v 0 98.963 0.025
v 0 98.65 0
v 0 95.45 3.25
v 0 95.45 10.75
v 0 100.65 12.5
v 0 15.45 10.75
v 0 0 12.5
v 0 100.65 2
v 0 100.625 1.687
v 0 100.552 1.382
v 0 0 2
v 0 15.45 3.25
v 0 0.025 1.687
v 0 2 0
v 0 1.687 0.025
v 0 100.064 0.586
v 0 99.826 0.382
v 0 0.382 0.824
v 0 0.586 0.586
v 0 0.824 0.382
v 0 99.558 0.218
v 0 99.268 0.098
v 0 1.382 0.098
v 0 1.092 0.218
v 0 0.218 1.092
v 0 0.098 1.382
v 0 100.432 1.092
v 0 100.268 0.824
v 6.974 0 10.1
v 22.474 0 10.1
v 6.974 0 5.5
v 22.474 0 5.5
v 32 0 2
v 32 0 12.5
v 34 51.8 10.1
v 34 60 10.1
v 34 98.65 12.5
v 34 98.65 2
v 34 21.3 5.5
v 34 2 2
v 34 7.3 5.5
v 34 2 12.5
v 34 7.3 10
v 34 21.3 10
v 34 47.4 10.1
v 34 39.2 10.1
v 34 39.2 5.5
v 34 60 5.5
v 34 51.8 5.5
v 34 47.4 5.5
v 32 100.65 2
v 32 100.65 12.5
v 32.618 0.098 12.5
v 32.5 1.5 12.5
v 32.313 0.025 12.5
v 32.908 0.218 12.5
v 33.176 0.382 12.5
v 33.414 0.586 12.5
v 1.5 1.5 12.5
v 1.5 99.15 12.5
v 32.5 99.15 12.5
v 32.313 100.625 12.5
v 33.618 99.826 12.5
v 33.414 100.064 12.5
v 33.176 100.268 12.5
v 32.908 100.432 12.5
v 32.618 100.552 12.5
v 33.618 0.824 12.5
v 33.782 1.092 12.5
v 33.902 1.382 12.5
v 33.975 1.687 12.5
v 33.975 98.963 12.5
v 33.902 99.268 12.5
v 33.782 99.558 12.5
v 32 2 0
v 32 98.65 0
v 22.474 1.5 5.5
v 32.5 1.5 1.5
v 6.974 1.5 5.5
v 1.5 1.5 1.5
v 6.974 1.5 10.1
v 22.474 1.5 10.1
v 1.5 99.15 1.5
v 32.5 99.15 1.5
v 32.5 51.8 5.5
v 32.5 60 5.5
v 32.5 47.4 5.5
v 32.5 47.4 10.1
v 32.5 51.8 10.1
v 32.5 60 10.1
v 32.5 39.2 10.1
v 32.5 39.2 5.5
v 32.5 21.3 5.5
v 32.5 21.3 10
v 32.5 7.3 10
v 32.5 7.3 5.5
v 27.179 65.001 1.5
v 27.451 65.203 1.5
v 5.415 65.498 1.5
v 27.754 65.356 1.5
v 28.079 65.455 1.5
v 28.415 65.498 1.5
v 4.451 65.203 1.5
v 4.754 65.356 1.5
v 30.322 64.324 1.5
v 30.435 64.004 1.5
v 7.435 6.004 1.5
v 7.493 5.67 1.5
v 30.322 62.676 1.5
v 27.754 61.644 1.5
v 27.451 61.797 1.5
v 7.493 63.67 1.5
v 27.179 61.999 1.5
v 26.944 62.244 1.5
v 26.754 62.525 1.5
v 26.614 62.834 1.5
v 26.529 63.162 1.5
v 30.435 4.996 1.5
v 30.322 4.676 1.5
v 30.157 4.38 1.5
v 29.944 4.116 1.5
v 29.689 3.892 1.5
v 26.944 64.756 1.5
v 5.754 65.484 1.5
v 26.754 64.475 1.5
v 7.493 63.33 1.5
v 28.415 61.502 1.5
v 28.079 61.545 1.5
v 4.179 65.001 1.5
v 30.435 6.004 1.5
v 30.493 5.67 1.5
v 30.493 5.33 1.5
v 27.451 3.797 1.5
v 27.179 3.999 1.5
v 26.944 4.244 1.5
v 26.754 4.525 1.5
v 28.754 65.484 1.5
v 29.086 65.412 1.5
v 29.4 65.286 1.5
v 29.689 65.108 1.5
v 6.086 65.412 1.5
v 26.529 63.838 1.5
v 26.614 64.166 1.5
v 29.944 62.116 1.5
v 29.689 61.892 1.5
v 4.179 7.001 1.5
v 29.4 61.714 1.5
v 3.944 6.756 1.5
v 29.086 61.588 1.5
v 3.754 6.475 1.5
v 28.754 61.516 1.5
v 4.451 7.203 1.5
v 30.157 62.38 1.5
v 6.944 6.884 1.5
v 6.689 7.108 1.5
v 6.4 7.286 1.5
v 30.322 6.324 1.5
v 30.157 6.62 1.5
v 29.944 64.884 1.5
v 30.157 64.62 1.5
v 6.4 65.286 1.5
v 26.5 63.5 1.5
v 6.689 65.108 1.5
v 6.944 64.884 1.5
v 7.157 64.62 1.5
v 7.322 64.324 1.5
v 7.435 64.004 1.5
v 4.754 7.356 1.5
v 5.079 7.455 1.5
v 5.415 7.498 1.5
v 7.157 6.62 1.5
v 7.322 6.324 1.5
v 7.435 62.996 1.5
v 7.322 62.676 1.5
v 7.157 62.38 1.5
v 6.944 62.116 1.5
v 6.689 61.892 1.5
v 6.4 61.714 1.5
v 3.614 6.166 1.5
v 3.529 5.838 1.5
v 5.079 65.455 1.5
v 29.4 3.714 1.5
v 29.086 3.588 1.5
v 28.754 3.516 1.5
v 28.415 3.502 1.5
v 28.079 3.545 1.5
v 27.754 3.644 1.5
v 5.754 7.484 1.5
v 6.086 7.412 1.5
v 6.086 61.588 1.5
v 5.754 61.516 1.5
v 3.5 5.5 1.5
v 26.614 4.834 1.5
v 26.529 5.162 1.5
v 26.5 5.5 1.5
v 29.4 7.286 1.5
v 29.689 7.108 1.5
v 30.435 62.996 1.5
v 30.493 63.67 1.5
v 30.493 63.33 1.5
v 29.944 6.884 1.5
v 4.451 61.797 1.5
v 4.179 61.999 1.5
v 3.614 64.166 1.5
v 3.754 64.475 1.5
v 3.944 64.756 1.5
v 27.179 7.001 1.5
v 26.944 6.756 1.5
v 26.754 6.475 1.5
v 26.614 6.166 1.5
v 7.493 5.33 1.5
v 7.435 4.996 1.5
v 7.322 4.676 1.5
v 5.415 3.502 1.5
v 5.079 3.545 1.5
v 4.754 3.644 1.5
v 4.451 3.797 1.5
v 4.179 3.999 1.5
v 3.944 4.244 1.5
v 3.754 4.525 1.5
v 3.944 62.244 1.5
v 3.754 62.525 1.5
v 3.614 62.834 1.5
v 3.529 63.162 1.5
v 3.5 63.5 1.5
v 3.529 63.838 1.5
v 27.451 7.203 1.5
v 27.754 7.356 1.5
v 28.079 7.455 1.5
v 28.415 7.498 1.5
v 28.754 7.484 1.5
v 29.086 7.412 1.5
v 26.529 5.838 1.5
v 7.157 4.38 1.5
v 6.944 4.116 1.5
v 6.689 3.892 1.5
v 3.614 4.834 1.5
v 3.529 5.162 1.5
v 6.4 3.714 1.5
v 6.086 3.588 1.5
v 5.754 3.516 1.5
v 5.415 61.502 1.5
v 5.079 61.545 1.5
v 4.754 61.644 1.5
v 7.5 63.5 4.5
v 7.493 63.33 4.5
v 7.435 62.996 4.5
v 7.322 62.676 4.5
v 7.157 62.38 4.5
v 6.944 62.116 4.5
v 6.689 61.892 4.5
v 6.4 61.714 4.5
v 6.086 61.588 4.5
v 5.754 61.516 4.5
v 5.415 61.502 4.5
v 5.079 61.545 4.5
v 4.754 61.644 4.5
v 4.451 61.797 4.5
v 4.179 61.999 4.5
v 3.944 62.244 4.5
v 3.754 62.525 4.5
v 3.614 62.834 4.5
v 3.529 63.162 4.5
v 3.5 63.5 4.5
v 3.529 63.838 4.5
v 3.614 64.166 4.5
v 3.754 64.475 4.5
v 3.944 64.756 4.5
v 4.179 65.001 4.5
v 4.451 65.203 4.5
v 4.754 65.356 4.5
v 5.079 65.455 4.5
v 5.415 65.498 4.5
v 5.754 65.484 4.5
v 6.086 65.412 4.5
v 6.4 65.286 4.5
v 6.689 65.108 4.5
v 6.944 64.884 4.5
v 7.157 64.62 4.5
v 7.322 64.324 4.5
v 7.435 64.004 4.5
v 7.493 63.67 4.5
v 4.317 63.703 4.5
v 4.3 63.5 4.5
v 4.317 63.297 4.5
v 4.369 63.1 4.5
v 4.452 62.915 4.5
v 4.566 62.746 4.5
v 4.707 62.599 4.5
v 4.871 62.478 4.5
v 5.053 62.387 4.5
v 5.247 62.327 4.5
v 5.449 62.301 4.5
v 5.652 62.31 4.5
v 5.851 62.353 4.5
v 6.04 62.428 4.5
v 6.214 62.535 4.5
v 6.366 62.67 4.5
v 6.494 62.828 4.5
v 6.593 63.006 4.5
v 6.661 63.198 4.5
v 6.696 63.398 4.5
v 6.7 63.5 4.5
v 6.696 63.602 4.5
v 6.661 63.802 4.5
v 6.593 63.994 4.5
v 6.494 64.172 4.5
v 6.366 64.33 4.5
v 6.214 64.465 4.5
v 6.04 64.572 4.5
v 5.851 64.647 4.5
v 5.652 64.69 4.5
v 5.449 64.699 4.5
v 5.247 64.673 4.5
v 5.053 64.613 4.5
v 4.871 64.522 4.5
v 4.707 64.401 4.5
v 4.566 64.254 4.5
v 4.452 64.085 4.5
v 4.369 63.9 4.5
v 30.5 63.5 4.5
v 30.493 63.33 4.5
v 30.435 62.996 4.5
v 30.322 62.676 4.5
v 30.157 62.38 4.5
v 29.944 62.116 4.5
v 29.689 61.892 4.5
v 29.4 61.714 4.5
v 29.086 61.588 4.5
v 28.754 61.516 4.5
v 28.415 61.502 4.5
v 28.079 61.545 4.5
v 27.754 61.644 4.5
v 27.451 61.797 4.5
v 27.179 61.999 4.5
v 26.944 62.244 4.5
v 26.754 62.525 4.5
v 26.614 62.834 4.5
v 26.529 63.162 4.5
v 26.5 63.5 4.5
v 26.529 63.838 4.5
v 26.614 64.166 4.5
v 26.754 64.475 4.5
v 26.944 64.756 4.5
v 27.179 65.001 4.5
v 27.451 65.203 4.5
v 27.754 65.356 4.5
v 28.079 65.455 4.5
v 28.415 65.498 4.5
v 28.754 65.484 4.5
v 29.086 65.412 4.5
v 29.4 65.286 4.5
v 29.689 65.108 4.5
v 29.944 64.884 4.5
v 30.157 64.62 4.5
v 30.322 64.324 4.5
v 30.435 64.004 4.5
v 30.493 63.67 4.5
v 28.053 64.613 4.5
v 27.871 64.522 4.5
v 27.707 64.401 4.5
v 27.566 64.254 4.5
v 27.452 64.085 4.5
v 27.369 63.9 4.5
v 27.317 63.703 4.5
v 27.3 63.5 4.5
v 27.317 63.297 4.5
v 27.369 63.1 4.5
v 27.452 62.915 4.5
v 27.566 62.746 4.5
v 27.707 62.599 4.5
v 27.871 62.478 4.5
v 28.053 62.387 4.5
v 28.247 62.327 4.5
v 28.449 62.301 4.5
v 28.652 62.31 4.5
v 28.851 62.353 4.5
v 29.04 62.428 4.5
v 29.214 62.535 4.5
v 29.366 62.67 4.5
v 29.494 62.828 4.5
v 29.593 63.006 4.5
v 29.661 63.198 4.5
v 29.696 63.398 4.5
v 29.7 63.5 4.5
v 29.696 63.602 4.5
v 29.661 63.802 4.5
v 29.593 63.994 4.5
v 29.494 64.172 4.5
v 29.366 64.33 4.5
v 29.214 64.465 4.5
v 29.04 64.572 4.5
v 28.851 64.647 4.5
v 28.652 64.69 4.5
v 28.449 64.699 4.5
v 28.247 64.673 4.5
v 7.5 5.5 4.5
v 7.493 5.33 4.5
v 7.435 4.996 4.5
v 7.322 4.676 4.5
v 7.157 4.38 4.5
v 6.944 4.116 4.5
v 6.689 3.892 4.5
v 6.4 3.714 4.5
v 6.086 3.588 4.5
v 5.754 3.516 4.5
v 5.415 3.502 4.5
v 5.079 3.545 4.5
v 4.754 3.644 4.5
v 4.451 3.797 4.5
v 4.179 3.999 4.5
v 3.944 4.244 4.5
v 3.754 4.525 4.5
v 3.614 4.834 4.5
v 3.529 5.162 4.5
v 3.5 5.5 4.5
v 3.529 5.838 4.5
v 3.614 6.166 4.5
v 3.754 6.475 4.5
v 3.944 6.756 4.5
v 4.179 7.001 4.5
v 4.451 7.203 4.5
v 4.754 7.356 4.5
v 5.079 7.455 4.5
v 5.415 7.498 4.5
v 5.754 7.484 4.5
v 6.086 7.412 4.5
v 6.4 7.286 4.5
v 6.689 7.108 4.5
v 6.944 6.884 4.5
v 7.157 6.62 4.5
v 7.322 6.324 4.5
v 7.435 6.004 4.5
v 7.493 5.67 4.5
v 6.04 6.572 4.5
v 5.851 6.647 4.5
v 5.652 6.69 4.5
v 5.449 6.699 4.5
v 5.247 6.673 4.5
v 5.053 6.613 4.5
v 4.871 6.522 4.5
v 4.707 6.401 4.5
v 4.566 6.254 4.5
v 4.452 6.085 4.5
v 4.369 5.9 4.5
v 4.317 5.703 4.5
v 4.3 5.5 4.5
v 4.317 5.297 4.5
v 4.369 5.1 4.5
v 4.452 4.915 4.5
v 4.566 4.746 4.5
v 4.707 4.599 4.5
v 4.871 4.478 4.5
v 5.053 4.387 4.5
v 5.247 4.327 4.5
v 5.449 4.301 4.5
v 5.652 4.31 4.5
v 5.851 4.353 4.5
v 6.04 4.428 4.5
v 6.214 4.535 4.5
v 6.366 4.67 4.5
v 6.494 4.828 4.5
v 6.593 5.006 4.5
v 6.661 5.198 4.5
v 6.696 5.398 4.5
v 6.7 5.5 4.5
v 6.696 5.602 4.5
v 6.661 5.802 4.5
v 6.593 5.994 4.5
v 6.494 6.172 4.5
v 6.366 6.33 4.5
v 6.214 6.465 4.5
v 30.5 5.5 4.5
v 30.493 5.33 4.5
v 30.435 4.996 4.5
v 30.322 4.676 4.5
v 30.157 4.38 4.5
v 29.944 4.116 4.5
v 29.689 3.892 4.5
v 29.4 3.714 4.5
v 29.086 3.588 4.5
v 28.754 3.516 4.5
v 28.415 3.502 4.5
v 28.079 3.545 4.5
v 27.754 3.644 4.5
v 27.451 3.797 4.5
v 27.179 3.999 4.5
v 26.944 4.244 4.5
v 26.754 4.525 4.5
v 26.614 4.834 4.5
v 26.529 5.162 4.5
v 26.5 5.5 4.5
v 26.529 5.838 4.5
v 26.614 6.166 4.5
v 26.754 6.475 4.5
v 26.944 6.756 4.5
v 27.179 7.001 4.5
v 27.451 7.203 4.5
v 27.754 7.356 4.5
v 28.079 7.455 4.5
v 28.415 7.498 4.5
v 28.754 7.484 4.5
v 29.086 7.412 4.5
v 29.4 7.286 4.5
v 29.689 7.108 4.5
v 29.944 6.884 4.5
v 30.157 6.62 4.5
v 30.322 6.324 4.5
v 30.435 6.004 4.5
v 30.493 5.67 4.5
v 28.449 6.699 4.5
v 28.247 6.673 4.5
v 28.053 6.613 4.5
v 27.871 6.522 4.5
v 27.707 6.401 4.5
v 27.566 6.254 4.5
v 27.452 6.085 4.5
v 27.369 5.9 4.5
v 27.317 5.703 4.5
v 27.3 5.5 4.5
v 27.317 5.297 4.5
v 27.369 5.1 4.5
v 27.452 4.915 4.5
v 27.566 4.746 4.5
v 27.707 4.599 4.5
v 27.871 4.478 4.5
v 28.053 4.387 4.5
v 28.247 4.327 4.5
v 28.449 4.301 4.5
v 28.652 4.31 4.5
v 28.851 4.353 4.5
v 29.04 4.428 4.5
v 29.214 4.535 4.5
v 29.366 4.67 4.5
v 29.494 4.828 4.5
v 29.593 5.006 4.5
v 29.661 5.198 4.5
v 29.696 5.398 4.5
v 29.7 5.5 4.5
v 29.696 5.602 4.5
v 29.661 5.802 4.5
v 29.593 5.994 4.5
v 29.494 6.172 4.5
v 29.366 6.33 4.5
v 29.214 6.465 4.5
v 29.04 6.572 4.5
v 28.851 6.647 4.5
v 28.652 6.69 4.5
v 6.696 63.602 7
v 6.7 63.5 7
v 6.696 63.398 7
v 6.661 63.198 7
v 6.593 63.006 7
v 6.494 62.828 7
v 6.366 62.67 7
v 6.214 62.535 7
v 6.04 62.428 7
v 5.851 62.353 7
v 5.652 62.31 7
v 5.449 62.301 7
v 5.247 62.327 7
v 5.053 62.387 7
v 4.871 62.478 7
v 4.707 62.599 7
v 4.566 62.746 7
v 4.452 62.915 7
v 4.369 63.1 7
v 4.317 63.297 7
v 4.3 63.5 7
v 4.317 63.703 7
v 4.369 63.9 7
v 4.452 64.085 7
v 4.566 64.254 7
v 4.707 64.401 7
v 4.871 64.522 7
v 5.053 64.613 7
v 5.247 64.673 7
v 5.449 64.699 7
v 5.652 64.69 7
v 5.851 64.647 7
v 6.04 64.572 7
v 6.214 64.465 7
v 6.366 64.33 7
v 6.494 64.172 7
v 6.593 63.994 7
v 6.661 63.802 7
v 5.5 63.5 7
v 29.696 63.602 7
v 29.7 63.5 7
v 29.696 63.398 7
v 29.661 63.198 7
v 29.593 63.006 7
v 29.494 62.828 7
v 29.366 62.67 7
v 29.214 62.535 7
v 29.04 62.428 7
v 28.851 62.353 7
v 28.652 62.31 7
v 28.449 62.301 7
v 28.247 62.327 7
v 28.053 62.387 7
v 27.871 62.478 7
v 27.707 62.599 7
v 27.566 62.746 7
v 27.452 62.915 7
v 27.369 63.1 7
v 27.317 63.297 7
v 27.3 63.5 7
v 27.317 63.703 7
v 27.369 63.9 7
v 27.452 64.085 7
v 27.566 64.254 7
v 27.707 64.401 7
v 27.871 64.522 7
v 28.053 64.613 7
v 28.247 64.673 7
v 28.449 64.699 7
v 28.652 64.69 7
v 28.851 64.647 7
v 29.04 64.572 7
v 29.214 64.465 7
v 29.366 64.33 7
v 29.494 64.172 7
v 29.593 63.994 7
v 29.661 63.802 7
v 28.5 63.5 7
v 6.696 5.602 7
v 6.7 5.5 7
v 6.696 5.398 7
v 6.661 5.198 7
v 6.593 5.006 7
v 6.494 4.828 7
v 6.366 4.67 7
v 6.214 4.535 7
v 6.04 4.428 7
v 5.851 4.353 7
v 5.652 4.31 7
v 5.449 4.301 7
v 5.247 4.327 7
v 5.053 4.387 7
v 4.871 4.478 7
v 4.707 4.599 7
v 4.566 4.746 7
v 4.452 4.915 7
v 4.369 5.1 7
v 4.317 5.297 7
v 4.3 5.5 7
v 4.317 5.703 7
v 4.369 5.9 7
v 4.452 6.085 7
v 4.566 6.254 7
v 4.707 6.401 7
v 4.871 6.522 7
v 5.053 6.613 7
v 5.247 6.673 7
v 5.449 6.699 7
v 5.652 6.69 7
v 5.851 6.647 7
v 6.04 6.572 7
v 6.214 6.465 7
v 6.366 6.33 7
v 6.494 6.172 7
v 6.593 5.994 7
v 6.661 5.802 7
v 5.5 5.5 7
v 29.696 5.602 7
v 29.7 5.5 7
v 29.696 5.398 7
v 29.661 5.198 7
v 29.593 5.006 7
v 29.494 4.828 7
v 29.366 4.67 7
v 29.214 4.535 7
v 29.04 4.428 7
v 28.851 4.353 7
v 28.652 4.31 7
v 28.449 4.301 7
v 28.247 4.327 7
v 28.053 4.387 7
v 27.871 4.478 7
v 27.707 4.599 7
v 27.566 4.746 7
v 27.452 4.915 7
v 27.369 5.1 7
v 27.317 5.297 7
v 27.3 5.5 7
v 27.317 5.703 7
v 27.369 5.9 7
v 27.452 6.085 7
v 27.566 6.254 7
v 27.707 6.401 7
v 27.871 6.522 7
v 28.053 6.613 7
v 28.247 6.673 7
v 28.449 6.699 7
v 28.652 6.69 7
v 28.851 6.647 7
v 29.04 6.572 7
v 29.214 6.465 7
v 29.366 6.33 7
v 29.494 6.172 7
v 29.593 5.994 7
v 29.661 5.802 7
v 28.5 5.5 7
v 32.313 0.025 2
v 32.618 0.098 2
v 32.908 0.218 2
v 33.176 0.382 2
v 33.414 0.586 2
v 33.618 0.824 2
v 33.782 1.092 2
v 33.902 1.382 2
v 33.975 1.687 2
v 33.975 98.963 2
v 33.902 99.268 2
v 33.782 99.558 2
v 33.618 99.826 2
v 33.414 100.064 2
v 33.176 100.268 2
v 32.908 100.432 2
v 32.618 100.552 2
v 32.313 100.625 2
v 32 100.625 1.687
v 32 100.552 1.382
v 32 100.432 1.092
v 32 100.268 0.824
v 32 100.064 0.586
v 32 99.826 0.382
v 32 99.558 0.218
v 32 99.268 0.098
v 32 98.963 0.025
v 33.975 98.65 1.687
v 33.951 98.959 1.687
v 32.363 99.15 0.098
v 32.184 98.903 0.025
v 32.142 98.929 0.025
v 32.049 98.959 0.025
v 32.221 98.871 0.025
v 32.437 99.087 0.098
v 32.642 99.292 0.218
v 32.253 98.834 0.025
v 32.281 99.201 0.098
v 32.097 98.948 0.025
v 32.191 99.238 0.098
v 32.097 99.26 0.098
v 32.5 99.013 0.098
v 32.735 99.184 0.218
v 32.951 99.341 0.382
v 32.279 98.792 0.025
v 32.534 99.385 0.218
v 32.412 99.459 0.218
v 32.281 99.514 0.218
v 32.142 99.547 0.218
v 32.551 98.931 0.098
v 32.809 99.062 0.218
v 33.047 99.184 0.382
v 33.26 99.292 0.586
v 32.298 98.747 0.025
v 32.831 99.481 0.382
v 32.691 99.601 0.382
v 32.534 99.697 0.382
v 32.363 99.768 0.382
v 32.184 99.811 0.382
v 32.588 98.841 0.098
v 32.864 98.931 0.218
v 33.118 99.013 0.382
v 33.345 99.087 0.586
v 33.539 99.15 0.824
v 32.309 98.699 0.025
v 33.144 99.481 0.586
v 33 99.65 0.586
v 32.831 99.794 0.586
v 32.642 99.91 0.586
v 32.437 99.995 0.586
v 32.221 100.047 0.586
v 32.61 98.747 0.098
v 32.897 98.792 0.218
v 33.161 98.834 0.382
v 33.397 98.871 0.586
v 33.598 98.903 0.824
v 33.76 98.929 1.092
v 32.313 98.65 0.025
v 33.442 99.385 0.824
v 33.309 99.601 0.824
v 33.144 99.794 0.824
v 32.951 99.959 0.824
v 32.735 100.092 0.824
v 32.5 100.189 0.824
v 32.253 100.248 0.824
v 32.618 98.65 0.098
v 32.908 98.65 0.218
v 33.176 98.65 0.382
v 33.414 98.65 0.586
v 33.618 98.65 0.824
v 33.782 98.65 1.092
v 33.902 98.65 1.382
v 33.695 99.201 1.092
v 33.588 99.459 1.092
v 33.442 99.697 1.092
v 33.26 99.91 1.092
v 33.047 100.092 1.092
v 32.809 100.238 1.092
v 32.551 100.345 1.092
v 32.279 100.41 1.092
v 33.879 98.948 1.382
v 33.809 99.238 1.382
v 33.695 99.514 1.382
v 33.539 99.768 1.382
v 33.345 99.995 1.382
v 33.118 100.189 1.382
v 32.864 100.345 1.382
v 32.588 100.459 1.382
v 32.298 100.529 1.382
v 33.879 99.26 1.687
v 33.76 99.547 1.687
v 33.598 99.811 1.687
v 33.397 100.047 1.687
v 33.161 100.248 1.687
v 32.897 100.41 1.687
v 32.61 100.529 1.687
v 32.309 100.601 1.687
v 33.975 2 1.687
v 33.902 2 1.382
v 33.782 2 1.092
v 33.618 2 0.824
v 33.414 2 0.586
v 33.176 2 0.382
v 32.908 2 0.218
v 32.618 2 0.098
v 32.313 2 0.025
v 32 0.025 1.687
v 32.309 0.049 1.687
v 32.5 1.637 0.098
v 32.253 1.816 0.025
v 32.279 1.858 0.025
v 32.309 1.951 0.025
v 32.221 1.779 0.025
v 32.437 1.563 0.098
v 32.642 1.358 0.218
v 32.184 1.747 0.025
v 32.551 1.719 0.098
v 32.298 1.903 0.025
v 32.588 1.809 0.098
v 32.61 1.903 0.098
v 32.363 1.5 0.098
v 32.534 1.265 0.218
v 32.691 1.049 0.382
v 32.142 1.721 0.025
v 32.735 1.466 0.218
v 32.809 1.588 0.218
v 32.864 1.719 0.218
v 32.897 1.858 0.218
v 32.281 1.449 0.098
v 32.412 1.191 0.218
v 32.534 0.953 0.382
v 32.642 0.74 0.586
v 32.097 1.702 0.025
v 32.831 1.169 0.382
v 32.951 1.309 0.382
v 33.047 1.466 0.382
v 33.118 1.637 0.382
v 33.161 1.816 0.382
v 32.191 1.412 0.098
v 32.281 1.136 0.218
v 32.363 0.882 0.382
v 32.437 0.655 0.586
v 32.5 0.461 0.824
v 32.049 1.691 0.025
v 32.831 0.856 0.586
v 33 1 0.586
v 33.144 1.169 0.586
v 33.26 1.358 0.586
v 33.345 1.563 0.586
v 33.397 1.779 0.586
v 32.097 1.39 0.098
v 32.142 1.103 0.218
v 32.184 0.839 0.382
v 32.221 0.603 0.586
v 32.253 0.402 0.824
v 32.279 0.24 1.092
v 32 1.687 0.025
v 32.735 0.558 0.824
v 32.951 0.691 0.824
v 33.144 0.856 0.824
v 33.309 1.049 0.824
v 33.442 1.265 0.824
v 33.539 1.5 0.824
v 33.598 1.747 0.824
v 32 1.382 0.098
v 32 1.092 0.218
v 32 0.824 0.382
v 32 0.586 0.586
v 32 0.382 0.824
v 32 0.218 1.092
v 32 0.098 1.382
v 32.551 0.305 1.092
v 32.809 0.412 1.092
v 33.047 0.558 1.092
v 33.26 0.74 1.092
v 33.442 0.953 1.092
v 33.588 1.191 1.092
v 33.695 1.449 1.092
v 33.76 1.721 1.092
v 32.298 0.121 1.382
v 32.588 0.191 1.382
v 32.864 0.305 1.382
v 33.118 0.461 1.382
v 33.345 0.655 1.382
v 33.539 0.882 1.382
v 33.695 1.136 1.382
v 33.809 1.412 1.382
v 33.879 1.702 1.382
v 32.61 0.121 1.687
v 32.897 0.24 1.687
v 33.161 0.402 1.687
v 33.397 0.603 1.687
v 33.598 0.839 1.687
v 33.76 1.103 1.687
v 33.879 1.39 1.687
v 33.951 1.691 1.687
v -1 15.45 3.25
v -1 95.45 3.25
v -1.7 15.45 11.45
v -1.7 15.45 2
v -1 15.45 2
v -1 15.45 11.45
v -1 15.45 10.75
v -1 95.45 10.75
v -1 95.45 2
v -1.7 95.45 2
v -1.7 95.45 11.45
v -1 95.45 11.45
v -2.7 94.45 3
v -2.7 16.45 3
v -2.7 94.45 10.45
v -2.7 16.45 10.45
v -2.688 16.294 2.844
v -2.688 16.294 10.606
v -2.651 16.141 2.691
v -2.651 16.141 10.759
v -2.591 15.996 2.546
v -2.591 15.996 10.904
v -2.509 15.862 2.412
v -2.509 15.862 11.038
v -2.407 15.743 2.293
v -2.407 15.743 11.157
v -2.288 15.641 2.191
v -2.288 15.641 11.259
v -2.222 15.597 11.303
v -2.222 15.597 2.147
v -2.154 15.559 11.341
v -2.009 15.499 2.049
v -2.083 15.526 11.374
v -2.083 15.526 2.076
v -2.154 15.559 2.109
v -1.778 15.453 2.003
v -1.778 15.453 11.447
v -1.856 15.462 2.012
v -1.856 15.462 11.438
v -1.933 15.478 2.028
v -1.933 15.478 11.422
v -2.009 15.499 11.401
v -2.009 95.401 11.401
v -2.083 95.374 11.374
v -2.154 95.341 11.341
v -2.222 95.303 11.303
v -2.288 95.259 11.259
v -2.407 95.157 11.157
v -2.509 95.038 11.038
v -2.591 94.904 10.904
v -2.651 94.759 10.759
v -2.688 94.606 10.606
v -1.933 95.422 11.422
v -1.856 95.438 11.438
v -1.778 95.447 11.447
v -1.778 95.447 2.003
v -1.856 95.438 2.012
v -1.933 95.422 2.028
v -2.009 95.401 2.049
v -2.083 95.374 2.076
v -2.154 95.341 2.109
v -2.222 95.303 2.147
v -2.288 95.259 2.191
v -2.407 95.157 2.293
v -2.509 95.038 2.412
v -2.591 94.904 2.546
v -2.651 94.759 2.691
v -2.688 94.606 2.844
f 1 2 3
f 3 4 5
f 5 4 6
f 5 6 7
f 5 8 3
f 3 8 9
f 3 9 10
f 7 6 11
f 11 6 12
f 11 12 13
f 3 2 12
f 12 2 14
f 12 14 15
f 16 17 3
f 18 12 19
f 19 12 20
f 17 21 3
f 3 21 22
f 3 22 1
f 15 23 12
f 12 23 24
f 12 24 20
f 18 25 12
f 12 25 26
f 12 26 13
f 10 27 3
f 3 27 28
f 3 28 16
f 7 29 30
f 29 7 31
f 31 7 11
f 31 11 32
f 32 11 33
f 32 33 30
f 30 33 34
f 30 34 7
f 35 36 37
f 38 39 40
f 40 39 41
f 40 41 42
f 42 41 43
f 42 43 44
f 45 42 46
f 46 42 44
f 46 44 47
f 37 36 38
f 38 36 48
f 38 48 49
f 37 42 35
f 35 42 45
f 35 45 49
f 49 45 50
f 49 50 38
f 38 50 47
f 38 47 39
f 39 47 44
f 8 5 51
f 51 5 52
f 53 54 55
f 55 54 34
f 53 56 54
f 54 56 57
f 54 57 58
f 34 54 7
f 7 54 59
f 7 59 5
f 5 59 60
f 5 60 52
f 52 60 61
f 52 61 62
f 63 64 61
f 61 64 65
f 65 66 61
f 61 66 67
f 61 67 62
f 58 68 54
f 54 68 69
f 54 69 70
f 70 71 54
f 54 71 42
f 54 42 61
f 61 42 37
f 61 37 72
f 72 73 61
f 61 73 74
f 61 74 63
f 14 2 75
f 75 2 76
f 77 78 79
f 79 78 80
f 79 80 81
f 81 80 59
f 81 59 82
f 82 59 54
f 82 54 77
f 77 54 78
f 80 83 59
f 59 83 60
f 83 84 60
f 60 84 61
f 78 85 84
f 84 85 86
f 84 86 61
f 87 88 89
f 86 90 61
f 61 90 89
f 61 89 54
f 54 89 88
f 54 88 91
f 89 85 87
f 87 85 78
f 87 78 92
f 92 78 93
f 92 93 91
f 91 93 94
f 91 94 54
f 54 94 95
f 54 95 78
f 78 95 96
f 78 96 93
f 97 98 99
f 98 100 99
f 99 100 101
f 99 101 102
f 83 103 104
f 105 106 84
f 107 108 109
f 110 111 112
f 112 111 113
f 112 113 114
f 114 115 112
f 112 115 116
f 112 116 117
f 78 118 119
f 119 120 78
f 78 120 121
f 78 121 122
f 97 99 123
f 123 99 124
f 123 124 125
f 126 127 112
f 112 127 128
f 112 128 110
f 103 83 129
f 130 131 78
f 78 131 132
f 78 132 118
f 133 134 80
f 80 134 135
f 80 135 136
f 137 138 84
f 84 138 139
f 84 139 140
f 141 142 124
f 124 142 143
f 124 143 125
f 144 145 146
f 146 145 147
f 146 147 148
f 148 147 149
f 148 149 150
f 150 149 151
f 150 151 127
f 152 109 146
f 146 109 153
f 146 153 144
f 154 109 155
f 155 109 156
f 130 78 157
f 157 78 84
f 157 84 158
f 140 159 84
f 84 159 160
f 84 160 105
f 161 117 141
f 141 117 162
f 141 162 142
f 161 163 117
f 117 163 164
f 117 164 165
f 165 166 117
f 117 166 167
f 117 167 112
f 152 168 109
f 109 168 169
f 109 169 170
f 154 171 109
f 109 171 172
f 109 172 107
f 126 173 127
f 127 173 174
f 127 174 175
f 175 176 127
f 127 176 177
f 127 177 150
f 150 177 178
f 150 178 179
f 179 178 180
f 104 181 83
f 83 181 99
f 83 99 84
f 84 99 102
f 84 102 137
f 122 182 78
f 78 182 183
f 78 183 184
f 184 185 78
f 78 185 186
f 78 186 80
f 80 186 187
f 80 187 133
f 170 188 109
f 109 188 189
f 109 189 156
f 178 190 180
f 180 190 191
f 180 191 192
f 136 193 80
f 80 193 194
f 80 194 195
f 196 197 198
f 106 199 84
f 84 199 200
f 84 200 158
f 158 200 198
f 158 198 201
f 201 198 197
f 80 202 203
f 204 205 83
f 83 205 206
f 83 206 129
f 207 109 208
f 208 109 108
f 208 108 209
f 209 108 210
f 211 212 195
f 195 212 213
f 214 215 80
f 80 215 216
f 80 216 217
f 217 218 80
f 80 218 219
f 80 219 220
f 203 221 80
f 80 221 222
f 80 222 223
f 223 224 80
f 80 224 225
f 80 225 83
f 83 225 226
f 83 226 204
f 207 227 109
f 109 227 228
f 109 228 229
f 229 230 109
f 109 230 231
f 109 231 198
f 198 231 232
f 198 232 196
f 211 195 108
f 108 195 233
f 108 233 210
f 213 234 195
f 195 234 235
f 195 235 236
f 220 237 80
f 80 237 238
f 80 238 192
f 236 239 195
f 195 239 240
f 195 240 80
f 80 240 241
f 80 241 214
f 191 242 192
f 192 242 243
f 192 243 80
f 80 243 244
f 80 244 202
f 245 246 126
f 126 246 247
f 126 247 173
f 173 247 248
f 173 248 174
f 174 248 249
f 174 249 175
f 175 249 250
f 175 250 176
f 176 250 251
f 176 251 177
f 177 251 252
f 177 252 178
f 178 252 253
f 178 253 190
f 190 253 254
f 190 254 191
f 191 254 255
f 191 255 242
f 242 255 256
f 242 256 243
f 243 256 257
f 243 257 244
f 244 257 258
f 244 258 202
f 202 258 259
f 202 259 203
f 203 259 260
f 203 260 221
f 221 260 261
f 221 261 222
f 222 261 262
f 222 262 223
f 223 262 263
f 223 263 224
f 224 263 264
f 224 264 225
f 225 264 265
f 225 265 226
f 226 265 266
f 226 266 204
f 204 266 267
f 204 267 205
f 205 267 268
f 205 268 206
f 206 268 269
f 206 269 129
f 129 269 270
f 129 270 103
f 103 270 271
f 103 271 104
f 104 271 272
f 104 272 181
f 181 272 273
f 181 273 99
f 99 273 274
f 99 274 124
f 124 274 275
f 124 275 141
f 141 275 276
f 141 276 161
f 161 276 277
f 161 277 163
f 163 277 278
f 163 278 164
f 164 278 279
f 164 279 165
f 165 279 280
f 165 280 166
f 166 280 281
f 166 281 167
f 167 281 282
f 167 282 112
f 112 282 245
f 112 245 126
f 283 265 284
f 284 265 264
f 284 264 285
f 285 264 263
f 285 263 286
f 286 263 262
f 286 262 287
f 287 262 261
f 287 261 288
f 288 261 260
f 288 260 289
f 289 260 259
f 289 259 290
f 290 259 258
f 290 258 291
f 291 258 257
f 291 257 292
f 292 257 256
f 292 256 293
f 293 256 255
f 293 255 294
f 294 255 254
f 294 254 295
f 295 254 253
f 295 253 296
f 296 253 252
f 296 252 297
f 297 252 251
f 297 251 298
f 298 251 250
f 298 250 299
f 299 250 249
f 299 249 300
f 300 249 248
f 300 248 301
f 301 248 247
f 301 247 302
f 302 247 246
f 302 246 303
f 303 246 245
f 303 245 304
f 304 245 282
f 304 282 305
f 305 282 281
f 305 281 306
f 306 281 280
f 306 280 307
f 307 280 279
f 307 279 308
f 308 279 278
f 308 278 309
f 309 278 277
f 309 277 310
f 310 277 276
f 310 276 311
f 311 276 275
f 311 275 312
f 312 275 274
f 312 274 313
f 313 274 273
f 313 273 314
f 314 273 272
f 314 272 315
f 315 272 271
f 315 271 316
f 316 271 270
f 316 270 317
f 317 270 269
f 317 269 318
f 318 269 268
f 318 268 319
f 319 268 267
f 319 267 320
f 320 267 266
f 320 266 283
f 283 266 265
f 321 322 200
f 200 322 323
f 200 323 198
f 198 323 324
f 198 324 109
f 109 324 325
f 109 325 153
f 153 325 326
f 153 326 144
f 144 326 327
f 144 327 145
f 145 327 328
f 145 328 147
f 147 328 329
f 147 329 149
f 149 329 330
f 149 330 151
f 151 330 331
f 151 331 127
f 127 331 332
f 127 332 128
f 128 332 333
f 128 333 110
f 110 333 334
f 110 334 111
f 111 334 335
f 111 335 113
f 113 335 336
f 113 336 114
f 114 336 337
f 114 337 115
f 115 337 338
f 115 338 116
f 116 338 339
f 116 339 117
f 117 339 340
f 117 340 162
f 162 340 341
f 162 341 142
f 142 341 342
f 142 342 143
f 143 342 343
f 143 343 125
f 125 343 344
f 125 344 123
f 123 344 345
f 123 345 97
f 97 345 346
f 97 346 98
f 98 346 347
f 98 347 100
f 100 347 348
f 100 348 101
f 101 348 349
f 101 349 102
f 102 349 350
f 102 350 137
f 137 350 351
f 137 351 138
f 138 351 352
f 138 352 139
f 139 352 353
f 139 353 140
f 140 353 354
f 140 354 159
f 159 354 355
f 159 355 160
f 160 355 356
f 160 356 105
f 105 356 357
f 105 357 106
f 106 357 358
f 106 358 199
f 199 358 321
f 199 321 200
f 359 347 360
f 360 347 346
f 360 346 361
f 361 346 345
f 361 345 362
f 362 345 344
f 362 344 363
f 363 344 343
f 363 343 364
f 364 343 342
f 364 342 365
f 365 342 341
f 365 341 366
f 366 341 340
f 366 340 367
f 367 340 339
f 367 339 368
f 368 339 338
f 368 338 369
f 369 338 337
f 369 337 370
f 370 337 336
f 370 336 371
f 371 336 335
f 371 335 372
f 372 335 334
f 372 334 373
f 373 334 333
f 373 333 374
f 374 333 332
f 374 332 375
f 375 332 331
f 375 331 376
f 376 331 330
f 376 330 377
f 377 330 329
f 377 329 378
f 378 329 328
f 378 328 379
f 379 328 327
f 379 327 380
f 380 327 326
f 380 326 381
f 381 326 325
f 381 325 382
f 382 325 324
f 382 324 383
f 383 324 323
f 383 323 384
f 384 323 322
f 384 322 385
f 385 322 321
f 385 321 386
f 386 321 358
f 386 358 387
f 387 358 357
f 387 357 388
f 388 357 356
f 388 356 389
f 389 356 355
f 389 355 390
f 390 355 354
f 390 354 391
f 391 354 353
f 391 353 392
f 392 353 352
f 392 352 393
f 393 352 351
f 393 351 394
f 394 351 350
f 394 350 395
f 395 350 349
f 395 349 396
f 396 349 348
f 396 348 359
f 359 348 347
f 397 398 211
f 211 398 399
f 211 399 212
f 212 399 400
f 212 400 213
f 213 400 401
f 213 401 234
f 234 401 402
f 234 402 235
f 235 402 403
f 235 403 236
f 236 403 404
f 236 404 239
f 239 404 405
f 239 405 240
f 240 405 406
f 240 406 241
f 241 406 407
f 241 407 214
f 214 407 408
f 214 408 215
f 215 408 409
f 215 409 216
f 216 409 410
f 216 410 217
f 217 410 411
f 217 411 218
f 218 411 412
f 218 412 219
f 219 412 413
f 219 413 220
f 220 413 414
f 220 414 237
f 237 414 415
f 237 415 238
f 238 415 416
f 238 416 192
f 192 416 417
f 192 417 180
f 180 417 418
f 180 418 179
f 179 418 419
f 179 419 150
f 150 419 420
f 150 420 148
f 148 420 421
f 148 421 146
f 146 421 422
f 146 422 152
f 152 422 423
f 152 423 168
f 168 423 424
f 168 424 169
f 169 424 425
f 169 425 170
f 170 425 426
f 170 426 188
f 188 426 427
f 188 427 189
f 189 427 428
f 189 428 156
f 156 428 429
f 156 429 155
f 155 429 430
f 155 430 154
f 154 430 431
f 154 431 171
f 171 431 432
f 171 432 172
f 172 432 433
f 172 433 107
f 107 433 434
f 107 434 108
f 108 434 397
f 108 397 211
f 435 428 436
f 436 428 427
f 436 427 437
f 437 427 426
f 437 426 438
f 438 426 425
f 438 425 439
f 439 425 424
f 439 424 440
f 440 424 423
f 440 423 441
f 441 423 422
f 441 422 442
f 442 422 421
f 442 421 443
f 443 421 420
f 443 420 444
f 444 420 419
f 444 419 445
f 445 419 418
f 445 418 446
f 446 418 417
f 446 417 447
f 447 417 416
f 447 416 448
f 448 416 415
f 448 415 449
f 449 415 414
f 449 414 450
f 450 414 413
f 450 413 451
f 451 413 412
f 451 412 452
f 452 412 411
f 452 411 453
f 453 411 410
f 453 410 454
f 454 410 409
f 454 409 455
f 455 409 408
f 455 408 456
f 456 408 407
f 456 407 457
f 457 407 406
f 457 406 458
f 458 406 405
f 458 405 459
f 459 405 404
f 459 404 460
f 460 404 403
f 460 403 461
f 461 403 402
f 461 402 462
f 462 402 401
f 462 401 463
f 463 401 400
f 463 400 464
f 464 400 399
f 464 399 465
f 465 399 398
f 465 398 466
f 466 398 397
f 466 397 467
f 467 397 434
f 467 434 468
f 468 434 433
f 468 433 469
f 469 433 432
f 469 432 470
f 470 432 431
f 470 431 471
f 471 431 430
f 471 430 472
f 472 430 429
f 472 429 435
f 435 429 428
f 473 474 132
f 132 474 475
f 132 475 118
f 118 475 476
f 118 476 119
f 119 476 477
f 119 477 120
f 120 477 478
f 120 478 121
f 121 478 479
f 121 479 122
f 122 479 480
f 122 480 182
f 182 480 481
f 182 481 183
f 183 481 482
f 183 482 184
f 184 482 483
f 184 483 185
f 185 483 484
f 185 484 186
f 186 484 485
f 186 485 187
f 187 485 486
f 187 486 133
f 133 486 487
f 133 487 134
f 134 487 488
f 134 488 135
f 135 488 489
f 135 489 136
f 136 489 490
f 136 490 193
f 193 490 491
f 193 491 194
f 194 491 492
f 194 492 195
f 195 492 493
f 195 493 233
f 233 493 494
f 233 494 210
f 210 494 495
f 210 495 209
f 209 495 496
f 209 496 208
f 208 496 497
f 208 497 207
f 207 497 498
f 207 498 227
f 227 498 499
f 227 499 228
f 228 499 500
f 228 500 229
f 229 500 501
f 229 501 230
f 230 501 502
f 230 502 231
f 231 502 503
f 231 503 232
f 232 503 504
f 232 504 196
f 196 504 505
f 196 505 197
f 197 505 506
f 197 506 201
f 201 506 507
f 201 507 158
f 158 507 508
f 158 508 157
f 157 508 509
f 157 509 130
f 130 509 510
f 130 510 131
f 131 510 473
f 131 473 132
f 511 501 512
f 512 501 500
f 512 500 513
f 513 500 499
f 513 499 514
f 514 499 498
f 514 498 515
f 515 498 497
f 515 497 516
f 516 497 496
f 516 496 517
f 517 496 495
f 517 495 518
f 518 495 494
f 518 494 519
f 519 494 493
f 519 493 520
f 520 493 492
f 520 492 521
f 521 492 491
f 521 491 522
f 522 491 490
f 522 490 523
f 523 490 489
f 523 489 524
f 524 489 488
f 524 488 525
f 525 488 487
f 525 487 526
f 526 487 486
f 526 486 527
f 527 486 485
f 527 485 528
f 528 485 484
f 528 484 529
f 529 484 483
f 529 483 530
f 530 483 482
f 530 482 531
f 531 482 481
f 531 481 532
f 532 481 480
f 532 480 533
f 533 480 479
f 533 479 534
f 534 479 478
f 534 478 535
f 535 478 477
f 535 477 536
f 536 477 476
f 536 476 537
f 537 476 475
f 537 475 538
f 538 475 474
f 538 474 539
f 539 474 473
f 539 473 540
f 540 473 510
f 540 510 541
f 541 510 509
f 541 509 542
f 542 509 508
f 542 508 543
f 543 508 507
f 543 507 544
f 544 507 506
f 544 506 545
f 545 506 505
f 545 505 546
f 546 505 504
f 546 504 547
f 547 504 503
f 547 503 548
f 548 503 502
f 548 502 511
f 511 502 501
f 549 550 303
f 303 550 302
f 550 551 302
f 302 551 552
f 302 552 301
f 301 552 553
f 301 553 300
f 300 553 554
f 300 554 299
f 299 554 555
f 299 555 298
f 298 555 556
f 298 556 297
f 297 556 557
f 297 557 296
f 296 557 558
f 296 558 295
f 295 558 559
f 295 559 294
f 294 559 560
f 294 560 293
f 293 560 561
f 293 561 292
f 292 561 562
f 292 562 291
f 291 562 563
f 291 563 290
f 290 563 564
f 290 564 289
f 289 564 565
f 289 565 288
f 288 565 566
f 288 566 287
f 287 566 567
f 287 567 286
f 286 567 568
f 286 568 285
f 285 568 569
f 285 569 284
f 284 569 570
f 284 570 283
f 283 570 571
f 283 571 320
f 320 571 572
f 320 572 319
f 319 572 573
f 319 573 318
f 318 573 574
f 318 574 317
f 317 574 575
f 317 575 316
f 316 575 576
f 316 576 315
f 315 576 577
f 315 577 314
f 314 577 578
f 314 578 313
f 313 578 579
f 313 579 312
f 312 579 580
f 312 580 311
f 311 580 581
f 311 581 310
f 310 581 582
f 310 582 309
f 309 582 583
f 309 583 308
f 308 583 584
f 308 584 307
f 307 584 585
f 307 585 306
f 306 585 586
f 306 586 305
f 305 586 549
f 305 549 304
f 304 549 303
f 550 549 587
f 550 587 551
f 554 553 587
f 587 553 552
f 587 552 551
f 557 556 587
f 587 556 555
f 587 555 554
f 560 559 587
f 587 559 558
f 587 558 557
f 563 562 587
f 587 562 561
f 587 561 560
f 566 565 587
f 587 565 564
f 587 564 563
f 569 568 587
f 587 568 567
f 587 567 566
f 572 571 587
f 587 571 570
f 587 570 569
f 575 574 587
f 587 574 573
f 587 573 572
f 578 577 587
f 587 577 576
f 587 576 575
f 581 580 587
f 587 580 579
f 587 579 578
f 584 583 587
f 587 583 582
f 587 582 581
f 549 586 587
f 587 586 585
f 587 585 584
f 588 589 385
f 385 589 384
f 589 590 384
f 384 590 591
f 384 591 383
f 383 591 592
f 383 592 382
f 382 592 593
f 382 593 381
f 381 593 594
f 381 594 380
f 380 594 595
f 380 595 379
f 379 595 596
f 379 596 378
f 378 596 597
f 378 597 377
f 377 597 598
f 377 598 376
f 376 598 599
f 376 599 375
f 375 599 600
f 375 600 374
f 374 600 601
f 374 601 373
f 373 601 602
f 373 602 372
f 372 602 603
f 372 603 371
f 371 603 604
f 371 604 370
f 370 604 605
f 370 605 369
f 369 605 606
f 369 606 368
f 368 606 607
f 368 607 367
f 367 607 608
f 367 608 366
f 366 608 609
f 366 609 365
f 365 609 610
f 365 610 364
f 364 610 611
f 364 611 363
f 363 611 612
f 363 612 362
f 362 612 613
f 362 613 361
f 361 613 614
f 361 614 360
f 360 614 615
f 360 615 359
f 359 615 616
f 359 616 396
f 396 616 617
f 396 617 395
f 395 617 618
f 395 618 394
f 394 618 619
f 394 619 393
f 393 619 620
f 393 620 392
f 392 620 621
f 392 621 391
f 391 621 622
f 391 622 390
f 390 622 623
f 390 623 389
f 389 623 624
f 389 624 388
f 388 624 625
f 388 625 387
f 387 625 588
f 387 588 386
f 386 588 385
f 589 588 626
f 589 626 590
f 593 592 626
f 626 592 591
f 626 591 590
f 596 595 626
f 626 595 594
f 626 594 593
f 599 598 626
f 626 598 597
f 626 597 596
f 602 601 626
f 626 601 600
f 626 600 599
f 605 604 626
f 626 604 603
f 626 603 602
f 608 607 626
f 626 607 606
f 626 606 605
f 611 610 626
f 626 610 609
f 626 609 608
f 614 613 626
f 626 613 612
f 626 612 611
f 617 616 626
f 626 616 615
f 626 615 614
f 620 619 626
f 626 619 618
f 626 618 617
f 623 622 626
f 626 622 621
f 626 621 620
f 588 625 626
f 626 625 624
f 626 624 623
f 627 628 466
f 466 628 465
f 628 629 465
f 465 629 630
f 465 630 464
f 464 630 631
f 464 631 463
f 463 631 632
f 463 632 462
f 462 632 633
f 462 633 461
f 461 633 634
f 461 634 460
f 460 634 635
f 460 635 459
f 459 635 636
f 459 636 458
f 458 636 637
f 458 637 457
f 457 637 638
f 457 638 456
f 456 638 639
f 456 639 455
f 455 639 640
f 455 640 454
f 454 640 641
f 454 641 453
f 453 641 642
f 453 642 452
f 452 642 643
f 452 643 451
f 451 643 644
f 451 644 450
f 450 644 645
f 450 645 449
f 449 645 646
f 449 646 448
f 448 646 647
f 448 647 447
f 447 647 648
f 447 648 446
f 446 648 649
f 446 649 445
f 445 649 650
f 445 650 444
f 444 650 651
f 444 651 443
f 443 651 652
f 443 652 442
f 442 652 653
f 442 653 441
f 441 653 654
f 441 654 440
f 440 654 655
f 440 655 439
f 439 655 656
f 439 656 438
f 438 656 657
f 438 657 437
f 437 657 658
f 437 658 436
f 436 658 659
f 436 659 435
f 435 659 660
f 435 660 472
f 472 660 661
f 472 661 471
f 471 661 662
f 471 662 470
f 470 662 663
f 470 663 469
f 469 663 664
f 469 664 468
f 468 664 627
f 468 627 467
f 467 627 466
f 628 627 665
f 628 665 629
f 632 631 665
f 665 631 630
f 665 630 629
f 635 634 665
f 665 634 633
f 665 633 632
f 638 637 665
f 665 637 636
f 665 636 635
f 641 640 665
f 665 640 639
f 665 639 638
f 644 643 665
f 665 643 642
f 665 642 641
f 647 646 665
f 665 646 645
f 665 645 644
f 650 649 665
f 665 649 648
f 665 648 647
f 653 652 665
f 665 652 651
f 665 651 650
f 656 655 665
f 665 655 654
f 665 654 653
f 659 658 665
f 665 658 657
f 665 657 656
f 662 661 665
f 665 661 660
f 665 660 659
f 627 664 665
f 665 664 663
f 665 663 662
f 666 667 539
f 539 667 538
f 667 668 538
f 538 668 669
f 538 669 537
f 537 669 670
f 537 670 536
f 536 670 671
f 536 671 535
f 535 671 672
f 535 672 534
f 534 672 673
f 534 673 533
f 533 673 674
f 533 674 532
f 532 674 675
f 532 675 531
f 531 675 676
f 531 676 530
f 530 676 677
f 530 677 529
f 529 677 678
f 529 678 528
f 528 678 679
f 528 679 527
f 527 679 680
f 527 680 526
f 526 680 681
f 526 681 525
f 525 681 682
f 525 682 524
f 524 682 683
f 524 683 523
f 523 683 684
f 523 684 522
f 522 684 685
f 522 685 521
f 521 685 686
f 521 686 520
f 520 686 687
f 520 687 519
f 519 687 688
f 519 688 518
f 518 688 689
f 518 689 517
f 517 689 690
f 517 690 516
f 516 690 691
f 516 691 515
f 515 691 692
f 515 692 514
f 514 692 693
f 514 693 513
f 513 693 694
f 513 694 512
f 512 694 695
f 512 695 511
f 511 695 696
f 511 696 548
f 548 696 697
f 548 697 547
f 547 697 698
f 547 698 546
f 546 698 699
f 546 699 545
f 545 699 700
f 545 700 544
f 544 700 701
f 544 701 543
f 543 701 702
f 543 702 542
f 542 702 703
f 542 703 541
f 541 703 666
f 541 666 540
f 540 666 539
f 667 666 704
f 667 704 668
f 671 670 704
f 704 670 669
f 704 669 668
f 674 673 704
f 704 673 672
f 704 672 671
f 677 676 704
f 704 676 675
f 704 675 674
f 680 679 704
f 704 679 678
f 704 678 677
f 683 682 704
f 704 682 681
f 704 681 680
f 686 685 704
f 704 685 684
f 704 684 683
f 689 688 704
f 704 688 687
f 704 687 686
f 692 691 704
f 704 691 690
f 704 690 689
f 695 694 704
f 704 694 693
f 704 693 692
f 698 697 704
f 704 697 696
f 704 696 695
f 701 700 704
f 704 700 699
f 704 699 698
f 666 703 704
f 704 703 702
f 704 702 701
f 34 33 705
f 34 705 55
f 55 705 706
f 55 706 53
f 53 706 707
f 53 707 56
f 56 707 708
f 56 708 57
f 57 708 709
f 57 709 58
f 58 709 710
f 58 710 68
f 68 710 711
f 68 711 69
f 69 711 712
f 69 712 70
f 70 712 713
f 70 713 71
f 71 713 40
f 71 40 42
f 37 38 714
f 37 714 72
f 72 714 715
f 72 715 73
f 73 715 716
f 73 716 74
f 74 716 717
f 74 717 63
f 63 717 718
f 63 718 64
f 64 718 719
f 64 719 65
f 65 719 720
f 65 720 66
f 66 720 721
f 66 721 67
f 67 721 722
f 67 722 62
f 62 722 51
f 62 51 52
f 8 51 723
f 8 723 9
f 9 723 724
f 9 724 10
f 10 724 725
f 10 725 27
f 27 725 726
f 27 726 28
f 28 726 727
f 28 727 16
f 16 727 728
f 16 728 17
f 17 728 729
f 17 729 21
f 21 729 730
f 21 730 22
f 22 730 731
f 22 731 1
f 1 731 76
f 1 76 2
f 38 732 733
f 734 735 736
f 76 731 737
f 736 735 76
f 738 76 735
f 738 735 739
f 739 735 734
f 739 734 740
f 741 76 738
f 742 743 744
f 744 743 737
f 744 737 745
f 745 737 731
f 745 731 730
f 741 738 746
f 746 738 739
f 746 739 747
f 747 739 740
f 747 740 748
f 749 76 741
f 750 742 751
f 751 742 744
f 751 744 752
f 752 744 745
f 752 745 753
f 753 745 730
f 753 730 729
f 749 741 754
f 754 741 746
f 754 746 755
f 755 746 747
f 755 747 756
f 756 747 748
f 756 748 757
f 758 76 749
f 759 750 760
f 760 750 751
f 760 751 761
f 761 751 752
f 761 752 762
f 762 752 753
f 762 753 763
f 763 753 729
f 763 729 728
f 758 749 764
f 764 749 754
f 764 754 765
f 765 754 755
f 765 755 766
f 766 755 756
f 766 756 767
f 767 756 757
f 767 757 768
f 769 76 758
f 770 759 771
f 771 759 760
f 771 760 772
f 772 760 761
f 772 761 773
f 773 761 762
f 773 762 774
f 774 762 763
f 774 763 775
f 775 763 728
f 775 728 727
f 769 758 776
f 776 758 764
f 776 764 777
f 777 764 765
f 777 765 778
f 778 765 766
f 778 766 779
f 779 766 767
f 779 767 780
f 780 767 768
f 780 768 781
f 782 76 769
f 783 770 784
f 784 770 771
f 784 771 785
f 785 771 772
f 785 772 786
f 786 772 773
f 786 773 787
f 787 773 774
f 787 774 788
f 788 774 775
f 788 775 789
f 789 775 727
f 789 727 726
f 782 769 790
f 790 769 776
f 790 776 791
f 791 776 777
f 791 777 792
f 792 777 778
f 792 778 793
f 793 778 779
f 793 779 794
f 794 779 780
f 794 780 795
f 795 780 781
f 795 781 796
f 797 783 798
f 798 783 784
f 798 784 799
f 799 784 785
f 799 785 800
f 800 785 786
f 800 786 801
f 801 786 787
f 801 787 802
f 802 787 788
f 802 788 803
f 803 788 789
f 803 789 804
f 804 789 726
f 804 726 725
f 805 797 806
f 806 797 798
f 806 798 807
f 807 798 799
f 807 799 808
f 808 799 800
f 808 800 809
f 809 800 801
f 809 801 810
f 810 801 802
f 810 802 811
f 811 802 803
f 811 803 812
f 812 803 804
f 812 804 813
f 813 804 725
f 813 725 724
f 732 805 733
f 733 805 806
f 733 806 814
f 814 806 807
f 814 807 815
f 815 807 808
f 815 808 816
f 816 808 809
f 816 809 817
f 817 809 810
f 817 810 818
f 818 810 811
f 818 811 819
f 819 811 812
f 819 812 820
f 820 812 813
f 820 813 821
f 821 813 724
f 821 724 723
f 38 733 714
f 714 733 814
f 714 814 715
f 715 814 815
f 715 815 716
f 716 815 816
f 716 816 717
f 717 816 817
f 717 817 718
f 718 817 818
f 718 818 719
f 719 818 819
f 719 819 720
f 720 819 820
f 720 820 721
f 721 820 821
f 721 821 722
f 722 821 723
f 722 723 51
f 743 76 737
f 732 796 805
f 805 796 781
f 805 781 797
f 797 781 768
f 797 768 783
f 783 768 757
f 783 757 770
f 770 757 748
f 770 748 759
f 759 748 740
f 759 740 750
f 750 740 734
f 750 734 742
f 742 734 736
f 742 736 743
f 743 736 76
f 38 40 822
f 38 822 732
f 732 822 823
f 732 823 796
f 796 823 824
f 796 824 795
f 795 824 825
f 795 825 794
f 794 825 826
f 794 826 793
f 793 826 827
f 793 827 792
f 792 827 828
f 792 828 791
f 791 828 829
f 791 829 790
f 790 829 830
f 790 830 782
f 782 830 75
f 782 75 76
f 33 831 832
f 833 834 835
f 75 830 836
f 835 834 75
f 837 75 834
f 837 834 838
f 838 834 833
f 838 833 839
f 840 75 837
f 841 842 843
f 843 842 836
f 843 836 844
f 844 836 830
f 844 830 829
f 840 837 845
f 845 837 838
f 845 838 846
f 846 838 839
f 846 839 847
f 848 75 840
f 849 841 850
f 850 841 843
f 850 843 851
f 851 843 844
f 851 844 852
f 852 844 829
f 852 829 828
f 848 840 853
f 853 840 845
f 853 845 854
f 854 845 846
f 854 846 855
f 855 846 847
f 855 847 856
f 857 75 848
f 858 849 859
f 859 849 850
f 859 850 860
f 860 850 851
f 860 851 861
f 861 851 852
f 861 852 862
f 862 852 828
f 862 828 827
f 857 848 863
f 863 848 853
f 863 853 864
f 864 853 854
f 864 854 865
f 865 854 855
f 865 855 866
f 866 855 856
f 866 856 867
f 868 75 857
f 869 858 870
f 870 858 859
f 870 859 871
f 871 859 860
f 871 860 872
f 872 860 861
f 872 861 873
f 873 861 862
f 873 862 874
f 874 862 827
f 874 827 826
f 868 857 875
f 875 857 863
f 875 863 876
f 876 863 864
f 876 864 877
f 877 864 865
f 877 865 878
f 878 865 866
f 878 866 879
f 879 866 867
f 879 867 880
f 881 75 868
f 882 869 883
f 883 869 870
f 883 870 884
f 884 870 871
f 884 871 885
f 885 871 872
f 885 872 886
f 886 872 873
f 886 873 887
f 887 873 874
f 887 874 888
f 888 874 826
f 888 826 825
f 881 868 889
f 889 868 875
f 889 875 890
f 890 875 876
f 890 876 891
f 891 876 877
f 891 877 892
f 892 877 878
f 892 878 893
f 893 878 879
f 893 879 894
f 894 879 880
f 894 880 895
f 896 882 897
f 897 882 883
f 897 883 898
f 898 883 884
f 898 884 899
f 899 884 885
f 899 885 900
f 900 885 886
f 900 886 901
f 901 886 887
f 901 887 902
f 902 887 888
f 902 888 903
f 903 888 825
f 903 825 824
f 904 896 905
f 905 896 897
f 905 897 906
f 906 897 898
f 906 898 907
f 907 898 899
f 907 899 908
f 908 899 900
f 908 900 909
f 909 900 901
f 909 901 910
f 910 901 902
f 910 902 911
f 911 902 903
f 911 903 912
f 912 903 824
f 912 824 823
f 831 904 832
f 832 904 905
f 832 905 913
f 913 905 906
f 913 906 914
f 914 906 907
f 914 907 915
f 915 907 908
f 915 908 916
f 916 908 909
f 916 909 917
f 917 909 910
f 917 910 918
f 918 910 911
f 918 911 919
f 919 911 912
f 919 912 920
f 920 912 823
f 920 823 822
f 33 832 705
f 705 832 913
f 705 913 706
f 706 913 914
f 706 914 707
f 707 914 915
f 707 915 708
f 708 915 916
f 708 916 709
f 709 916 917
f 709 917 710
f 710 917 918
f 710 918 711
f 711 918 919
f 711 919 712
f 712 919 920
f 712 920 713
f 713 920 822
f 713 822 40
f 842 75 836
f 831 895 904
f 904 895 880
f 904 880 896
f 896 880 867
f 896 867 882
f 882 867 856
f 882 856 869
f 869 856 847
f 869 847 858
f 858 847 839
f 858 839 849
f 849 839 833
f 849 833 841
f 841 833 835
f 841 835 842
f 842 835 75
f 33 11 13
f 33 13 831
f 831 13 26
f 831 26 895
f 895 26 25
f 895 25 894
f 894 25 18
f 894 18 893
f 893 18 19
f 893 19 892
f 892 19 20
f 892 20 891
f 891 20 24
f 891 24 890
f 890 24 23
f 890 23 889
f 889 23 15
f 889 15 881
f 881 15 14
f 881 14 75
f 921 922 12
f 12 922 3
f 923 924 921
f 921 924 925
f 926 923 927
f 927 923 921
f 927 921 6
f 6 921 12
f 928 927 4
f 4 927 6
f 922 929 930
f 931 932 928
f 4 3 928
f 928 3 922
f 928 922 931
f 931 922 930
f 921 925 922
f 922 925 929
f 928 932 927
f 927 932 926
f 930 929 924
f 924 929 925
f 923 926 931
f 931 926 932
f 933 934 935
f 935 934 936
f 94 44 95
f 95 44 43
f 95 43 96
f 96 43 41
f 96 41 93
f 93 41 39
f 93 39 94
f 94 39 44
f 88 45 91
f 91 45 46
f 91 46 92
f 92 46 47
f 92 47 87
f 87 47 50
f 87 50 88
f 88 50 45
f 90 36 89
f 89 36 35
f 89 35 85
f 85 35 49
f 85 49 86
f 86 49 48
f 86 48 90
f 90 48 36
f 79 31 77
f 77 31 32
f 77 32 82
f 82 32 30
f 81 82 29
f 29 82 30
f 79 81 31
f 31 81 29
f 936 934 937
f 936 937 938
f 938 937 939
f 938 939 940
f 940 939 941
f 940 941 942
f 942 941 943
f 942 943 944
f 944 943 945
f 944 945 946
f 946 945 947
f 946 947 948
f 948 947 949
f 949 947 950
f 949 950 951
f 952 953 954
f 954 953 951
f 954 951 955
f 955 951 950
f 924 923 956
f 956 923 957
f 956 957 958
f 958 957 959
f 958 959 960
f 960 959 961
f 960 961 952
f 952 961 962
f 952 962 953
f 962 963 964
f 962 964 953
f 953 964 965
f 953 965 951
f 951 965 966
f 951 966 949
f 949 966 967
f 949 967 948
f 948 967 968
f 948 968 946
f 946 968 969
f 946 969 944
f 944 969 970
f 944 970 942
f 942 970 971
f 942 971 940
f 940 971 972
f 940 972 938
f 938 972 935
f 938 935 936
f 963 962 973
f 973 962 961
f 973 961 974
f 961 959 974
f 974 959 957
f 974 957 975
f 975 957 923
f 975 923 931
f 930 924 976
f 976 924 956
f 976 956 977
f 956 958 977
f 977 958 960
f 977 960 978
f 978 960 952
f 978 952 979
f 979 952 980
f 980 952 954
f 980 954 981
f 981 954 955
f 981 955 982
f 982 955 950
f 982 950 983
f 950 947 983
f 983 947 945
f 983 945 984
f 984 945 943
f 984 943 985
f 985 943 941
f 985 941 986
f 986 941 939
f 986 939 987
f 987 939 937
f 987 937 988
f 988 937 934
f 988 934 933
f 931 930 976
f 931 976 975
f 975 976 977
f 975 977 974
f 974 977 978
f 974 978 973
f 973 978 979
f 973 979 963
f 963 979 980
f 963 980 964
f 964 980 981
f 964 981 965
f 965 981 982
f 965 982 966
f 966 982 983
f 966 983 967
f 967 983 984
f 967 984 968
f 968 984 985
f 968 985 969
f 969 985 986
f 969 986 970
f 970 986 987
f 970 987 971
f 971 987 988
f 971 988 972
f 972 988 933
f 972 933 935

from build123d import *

# Parameters (mm, degrees)
ESQUISSE1_W             = 34
ESQUISSE1_H             = 100.65
BOSS_EXTRU_1_DEPTH      = 12.5
ESQUISSE2_W             = 31
ESQUISSE2_H             = 97.65
ENL_V_MAT_EXTRU_1_DEPTH = 11
ESQUISSE5_R             = 2
BOSS_EXTRU_4_DEPTH      = 3
ESQUISSE6_R             = 1.2
BOSS_EXTRU_5_DEPTH      = 5.5
CONG_2_R                = 2
CONG_3_R                = 2
CONG_4_R                = 2
ESQUISSE7_W             = 7.5
ESQUISSE7_H             = 80
BOSS_EXTRU_6_DEPTH      = 1
ESQUISSE9_W             = 9.45
ESQUISSE9_H             = 80
BOSS_EXTRU_7_DEPTH      = 1.7
ESQUISSE10_W            = 4.6
ESQUISSE10_H            = 8.2
ESQUISSE10_W_2          = 4.5
ESQUISSE10_H_2          = 14
ENL_V_MAT_EXTRU_2_DEPTH = 3
ESQUISSE11_W            = 15.5
ESQUISSE11_H            = 4.6
ENL_V_MAT_EXTRU_3_DEPTH = 3
CONG_7_R                = 1


with BuildPart() as part:
    # Esquisse1 → Boss.-Extru.1 (new body)
    with BuildSketch(Plane.XY):
        with Locations((17, 50.325)):
            Rectangle(ESQUISSE1_W, ESQUISSE1_H)
    extrude(amount=BOSS_EXTRU_1_DEPTH)

    # Esquisse2 → Enlèv. mat.-Extru.1 (cut)
    with BuildSketch(Plane.XY.offset(12.5)):
        with Locations((17, 50.325)):
            Rectangle(ESQUISSE2_W, ESQUISSE2_H)
    extrude(amount=-ENL_V_MAT_EXTRU_1_DEPTH, mode=Mode.SUBTRACT)

    # Esquisse5 → Boss.-Extru.4 (add)
    with BuildSketch(Plane.XY.offset(1.5)):
        with Locations((5.5, 63.5)):
            Circle(ESQUISSE5_R)
        with Locations((28.5, 63.5)):
            Circle(ESQUISSE5_R)
        with Locations((5.5, 5.5)):
            Circle(ESQUISSE5_R)
        with Locations((28.5, 5.5)):
            Circle(ESQUISSE5_R)
    extrude(amount=BOSS_EXTRU_4_DEPTH)

    # Esquisse6 → Boss.-Extru.5 (add)
    with BuildSketch(Plane.XY.offset(1.5)):
        with Locations((5.5, 63.5)):
            Circle(ESQUISSE6_R)
        with Locations((28.5, 63.5)):
            Circle(ESQUISSE6_R)
        with Locations((5.5, 5.5)):
            Circle(ESQUISSE6_R)
        with Locations((28.5, 5.5)):
            Circle(ESQUISSE6_R)
    extrude(amount=BOSS_EXTRU_5_DEPTH)

    # Congé2
    cong_2_edges = [part.edges().sort_by_distance(p)[0] for p in [
        (34, 0, 6.25),
    ]]
    fillet(cong_2_edges, radius=CONG_2_R)

    # Congé3
    cong_3_edges = [part.edges().sort_by_distance(p)[0] for p in [
        (34, 100.65, 6.25),
    ]]
    fillet(cong_3_edges, radius=CONG_3_R)

    # Congé4
    cong_4_edges = [part.edges().sort_by_distance(p)[0] for p in [
        (16, 0, 0),
        (34, 50.325, 0),
        (33.414213562, 0.585786438, 0),
        (16, 100.65, 0),
        (33.414213562, 100.064213562, 0),
    ]]
    fillet(cong_4_edges, radius=CONG_4_R)

    # Esquisse7 → Boss.-Extru.6 (add)
    with BuildSketch(Plane.ZY):
        with Locations((7, 55.45)):
            Rectangle(ESQUISSE7_W, ESQUISSE7_H)
    extrude(amount=BOSS_EXTRU_6_DEPTH)

    # Esquisse9 → Boss.-Extru.7 (add)
    with BuildSketch(Plane.ZY.offset(1)):
        with Locations((6.725, 55.45)):
            Rectangle(ESQUISSE9_W, ESQUISSE9_H)
    extrude(amount=BOSS_EXTRU_7_DEPTH)

    # Esquisse10 → Enlèv. mat.-Extru.2 (cut)
    with BuildSketch(Plane.ZY.offset(-32.5)):
        with Locations((7.8, 55.9)):
            Rectangle(ESQUISSE10_W, ESQUISSE10_H)
        with Locations((7.8, 43.3)):
            Rectangle(ESQUISSE10_W, ESQUISSE10_H)
        with Locations((7.75, 14.3)):
            Rectangle(ESQUISSE10_W_2, ESQUISSE10_H_2)
    extrude(amount=-ENL_V_MAT_EXTRU_2_DEPTH, mode=Mode.SUBTRACT)

    # Esquisse11 → Enlèv. mat.-Extru.3 (cut)
    with BuildSketch(Plane(origin=(0, 1.5, 0), x_dir=(1, 0, 0), z_dir=(0, 1, 0))):
        with Locations((14.724178104, -7.8)):
            Rectangle(ESQUISSE11_W, ESQUISSE11_H)
    extrude(amount=-ENL_V_MAT_EXTRU_3_DEPTH, mode=Mode.SUBTRACT)

    # Congé7
    cong_7_edges = [part.edges().sort_by_distance(p)[0] for p in [
        (-2.7, 55.45, 2),
        (-2.7, 15.45, 6.725),
        (-2.7, 55.45, 11.45),
        (-2.7, 95.45, 6.725),
    ]]
    fillet(cong_7_edges, radius=CONG_7_R)


solid = part.part
